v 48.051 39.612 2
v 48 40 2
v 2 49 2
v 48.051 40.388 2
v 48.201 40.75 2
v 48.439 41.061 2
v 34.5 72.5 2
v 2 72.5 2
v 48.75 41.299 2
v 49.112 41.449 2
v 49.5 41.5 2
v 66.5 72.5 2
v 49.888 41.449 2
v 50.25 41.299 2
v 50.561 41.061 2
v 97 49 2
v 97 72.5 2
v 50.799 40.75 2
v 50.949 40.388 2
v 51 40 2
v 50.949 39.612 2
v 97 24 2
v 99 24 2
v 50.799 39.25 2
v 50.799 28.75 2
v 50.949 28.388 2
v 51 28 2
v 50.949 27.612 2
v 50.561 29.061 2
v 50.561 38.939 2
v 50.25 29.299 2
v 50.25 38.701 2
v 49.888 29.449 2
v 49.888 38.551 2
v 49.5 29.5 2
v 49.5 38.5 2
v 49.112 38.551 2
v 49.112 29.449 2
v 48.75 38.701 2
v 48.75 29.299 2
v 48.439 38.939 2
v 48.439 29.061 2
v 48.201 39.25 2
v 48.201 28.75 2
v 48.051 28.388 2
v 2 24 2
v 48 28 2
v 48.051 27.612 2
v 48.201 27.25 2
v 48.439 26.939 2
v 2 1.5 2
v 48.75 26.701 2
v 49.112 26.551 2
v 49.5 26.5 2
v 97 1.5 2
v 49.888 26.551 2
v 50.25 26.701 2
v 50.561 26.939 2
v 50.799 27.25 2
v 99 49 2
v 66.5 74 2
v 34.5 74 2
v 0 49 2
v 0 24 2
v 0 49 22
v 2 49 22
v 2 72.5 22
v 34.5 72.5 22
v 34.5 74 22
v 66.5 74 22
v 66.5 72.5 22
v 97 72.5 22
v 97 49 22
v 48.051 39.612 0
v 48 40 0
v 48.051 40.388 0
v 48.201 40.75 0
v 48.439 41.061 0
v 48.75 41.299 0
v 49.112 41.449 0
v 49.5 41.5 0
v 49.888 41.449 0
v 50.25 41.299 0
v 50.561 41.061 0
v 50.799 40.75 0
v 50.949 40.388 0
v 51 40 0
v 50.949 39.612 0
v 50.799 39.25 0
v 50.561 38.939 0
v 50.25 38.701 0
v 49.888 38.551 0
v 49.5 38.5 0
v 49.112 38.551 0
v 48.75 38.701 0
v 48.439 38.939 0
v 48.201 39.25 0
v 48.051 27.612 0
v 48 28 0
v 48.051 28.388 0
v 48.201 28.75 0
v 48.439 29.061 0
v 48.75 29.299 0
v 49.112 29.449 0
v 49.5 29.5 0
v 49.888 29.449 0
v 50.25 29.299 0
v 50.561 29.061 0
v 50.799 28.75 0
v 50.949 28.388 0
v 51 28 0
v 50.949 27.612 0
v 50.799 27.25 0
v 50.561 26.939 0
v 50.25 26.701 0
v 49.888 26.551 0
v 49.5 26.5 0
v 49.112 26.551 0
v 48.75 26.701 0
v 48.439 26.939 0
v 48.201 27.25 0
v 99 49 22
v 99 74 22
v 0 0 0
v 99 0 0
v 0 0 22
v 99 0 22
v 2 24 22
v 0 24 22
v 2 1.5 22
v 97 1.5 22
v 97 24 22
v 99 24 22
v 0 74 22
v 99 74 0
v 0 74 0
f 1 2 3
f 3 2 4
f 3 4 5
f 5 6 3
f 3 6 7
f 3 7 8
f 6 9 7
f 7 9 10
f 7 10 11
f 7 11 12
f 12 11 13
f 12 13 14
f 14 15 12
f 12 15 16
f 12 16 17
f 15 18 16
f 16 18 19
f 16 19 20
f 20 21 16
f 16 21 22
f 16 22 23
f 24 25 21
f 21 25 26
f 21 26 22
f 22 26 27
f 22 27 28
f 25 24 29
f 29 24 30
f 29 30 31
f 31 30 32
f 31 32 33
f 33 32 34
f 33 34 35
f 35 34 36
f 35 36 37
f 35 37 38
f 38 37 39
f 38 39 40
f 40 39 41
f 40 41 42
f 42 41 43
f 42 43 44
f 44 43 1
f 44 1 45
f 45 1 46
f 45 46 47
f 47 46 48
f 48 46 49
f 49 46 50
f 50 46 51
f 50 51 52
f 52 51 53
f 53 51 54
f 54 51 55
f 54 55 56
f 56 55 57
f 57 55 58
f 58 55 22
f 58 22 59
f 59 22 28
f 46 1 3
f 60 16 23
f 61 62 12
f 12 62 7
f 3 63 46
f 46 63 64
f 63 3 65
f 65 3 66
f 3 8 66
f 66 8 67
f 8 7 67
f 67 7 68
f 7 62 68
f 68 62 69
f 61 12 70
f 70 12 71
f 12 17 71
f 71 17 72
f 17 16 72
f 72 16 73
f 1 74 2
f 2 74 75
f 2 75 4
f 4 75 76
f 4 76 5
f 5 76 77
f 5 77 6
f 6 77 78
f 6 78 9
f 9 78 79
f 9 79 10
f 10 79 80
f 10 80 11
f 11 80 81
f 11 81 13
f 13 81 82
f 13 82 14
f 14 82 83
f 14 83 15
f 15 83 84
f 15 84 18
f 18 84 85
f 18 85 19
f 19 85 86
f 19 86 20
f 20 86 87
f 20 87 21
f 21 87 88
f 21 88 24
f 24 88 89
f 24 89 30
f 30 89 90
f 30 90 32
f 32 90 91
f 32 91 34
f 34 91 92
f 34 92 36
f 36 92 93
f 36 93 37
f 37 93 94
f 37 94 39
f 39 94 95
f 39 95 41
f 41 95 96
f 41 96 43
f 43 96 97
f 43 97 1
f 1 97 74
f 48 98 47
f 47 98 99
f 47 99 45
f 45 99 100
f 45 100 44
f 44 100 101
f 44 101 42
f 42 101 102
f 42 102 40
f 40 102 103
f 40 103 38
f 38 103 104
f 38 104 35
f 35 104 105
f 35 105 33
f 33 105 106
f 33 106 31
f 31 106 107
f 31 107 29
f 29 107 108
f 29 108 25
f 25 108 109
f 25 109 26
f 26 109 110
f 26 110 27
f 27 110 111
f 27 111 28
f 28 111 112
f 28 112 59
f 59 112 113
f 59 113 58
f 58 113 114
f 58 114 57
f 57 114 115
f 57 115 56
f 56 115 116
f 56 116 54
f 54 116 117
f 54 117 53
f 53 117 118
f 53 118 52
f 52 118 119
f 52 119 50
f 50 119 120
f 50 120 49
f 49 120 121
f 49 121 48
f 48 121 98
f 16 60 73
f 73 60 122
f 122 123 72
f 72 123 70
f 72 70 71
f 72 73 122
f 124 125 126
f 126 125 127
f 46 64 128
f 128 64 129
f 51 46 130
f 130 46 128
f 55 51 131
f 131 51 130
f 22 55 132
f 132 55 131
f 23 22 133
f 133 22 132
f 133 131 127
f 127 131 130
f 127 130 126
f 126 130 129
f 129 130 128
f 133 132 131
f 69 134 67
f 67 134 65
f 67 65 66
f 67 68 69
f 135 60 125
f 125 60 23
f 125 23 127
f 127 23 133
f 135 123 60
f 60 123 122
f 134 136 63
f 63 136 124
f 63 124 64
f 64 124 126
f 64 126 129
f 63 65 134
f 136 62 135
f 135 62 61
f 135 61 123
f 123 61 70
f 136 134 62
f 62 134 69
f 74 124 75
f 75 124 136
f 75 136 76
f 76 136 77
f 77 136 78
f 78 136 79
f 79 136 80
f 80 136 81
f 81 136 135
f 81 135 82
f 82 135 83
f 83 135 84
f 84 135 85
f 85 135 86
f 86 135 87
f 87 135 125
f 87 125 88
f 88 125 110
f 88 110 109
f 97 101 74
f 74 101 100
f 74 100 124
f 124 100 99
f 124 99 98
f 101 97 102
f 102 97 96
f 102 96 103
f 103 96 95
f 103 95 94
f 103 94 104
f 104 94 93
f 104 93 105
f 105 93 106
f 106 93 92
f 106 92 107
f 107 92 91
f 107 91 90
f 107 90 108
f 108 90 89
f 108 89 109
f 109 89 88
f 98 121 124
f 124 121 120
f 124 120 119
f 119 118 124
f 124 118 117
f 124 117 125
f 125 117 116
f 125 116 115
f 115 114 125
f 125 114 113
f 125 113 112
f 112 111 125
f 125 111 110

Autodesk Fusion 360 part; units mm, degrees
sketch "Szkic1" plane through (0, 0, 0) normal (0, 0, 1) x (1, 0, 0)
  line L0 (0, 0) -> (99, 0)
  line L1 (99, 0) -> (99, 74)
  line L2 (99, 74) -> (0, 74)
  line L3 (0, 74) -> (0, 0)
  line L4 (0, 74) -> (2, 74)
  line L5 (2, 74) -> (2, 0)
  line L6 (0, 74) -> (0, 72.5)
  line L7 (0, 72.5) -> (99, 72.5)
  line L8 (0, 0) -> (0, 1.5)
  line L9 (0, 1.5) -> (99, 1.5)
  line L10 (99, 0) -> (97, 0)
  line L11 (97, 0) -> (97, 74)
  line L12 (0, 74) -> (34.5, 74)
  line L13 (34.5, 74) -> (34.5, 72.5)
  line L14 (66.5, 74) -> (66.5, 72.5)
  line L15 (0, 74) -> (0, 49)
  line L16 (0, 49) -> (2, 49)
  line L17 (0, 49) -> (0, 24)
  line L18 (0, 24) -> (2, 24)
  line L19 (99, 74) -> (99, 49)
  line L20 (99, 49) -> (97, 49)
  line L21 (99, 49) -> (99, 24)
  line L22 (99, 24) -> (97, 24)
  line L23 (49.5, 0) -> (49.5, 28) construction
  line L24 (49.5, 28) -> (49.5, 40) construction
  circle A0 centre (49.5, 40) radius 1.5
  circle A1 centre (49.5, 28) radius 1.5
  point P0 (49.5, 0)
  dimension "d1" = 99
  dimension "d2" = 74
  dimension "d3" = 2
  dimension "d5" = 2
  dimension "d6" = 34.5
  dimension "d7" = 32
  dimension "d8" = 25
  dimension "d9" = 25
  dimension "d10" = 25
  dimension "d11" = 25
  dimension "d18" = 3
  dimension "d19" = 3
  dimension "d22" = 28
  dimension "d23" = 12
  dimension "d26" = 1.5
  dimension "d27" = 1.5
extrude "Wyciągnięcie proste1" add sketch "Szkic1" along normal blind 22 contours L0 L3 L5 L8 L9 | L0 L5 L9 L11 | L3 L5 L9 L18 | L0 L1 L9 L10 L11 | L1 L9 L11 L22 | L3 L5 L7 L15 L16 | L2 L3 L4 L5 L6 L7 L12 L15 | L1 L7 L11 L19 L20 | L2 L5 L7 L12 L13 | L1 L2 L7 L11 L19 | L2 L7 L11 L14 makes body 1 at (33, 0, 7.3333) makes body 2 at (88.1667, 74, 14.6667) makes body 3 at (23, 74, 7.3333)
extrude "Wyciągnięcie proste2" add sketch "Szkic1" along normal blind 1 separate body contours L5 L7 L9 L11 | L3 L5 L16 L17 L18 | L1 L11 L20 L21 L22 | L2 L7 L13 L14 | A0 | A1 makes body 4
combine "Kombinacja1" operation add target body 4 tool bodies 3 1 2
extrude "Wyciągnięcie proste3" cut sketch "Szkic1" along normal blind 6 contours A0 | A1 bodies 4
extrude "Wyciągnięcie proste4" add 1 faces at (49.4799, 9.8337, 1) along direction (0, 0, 1) blind 1 on bodies 4 bodies 4
